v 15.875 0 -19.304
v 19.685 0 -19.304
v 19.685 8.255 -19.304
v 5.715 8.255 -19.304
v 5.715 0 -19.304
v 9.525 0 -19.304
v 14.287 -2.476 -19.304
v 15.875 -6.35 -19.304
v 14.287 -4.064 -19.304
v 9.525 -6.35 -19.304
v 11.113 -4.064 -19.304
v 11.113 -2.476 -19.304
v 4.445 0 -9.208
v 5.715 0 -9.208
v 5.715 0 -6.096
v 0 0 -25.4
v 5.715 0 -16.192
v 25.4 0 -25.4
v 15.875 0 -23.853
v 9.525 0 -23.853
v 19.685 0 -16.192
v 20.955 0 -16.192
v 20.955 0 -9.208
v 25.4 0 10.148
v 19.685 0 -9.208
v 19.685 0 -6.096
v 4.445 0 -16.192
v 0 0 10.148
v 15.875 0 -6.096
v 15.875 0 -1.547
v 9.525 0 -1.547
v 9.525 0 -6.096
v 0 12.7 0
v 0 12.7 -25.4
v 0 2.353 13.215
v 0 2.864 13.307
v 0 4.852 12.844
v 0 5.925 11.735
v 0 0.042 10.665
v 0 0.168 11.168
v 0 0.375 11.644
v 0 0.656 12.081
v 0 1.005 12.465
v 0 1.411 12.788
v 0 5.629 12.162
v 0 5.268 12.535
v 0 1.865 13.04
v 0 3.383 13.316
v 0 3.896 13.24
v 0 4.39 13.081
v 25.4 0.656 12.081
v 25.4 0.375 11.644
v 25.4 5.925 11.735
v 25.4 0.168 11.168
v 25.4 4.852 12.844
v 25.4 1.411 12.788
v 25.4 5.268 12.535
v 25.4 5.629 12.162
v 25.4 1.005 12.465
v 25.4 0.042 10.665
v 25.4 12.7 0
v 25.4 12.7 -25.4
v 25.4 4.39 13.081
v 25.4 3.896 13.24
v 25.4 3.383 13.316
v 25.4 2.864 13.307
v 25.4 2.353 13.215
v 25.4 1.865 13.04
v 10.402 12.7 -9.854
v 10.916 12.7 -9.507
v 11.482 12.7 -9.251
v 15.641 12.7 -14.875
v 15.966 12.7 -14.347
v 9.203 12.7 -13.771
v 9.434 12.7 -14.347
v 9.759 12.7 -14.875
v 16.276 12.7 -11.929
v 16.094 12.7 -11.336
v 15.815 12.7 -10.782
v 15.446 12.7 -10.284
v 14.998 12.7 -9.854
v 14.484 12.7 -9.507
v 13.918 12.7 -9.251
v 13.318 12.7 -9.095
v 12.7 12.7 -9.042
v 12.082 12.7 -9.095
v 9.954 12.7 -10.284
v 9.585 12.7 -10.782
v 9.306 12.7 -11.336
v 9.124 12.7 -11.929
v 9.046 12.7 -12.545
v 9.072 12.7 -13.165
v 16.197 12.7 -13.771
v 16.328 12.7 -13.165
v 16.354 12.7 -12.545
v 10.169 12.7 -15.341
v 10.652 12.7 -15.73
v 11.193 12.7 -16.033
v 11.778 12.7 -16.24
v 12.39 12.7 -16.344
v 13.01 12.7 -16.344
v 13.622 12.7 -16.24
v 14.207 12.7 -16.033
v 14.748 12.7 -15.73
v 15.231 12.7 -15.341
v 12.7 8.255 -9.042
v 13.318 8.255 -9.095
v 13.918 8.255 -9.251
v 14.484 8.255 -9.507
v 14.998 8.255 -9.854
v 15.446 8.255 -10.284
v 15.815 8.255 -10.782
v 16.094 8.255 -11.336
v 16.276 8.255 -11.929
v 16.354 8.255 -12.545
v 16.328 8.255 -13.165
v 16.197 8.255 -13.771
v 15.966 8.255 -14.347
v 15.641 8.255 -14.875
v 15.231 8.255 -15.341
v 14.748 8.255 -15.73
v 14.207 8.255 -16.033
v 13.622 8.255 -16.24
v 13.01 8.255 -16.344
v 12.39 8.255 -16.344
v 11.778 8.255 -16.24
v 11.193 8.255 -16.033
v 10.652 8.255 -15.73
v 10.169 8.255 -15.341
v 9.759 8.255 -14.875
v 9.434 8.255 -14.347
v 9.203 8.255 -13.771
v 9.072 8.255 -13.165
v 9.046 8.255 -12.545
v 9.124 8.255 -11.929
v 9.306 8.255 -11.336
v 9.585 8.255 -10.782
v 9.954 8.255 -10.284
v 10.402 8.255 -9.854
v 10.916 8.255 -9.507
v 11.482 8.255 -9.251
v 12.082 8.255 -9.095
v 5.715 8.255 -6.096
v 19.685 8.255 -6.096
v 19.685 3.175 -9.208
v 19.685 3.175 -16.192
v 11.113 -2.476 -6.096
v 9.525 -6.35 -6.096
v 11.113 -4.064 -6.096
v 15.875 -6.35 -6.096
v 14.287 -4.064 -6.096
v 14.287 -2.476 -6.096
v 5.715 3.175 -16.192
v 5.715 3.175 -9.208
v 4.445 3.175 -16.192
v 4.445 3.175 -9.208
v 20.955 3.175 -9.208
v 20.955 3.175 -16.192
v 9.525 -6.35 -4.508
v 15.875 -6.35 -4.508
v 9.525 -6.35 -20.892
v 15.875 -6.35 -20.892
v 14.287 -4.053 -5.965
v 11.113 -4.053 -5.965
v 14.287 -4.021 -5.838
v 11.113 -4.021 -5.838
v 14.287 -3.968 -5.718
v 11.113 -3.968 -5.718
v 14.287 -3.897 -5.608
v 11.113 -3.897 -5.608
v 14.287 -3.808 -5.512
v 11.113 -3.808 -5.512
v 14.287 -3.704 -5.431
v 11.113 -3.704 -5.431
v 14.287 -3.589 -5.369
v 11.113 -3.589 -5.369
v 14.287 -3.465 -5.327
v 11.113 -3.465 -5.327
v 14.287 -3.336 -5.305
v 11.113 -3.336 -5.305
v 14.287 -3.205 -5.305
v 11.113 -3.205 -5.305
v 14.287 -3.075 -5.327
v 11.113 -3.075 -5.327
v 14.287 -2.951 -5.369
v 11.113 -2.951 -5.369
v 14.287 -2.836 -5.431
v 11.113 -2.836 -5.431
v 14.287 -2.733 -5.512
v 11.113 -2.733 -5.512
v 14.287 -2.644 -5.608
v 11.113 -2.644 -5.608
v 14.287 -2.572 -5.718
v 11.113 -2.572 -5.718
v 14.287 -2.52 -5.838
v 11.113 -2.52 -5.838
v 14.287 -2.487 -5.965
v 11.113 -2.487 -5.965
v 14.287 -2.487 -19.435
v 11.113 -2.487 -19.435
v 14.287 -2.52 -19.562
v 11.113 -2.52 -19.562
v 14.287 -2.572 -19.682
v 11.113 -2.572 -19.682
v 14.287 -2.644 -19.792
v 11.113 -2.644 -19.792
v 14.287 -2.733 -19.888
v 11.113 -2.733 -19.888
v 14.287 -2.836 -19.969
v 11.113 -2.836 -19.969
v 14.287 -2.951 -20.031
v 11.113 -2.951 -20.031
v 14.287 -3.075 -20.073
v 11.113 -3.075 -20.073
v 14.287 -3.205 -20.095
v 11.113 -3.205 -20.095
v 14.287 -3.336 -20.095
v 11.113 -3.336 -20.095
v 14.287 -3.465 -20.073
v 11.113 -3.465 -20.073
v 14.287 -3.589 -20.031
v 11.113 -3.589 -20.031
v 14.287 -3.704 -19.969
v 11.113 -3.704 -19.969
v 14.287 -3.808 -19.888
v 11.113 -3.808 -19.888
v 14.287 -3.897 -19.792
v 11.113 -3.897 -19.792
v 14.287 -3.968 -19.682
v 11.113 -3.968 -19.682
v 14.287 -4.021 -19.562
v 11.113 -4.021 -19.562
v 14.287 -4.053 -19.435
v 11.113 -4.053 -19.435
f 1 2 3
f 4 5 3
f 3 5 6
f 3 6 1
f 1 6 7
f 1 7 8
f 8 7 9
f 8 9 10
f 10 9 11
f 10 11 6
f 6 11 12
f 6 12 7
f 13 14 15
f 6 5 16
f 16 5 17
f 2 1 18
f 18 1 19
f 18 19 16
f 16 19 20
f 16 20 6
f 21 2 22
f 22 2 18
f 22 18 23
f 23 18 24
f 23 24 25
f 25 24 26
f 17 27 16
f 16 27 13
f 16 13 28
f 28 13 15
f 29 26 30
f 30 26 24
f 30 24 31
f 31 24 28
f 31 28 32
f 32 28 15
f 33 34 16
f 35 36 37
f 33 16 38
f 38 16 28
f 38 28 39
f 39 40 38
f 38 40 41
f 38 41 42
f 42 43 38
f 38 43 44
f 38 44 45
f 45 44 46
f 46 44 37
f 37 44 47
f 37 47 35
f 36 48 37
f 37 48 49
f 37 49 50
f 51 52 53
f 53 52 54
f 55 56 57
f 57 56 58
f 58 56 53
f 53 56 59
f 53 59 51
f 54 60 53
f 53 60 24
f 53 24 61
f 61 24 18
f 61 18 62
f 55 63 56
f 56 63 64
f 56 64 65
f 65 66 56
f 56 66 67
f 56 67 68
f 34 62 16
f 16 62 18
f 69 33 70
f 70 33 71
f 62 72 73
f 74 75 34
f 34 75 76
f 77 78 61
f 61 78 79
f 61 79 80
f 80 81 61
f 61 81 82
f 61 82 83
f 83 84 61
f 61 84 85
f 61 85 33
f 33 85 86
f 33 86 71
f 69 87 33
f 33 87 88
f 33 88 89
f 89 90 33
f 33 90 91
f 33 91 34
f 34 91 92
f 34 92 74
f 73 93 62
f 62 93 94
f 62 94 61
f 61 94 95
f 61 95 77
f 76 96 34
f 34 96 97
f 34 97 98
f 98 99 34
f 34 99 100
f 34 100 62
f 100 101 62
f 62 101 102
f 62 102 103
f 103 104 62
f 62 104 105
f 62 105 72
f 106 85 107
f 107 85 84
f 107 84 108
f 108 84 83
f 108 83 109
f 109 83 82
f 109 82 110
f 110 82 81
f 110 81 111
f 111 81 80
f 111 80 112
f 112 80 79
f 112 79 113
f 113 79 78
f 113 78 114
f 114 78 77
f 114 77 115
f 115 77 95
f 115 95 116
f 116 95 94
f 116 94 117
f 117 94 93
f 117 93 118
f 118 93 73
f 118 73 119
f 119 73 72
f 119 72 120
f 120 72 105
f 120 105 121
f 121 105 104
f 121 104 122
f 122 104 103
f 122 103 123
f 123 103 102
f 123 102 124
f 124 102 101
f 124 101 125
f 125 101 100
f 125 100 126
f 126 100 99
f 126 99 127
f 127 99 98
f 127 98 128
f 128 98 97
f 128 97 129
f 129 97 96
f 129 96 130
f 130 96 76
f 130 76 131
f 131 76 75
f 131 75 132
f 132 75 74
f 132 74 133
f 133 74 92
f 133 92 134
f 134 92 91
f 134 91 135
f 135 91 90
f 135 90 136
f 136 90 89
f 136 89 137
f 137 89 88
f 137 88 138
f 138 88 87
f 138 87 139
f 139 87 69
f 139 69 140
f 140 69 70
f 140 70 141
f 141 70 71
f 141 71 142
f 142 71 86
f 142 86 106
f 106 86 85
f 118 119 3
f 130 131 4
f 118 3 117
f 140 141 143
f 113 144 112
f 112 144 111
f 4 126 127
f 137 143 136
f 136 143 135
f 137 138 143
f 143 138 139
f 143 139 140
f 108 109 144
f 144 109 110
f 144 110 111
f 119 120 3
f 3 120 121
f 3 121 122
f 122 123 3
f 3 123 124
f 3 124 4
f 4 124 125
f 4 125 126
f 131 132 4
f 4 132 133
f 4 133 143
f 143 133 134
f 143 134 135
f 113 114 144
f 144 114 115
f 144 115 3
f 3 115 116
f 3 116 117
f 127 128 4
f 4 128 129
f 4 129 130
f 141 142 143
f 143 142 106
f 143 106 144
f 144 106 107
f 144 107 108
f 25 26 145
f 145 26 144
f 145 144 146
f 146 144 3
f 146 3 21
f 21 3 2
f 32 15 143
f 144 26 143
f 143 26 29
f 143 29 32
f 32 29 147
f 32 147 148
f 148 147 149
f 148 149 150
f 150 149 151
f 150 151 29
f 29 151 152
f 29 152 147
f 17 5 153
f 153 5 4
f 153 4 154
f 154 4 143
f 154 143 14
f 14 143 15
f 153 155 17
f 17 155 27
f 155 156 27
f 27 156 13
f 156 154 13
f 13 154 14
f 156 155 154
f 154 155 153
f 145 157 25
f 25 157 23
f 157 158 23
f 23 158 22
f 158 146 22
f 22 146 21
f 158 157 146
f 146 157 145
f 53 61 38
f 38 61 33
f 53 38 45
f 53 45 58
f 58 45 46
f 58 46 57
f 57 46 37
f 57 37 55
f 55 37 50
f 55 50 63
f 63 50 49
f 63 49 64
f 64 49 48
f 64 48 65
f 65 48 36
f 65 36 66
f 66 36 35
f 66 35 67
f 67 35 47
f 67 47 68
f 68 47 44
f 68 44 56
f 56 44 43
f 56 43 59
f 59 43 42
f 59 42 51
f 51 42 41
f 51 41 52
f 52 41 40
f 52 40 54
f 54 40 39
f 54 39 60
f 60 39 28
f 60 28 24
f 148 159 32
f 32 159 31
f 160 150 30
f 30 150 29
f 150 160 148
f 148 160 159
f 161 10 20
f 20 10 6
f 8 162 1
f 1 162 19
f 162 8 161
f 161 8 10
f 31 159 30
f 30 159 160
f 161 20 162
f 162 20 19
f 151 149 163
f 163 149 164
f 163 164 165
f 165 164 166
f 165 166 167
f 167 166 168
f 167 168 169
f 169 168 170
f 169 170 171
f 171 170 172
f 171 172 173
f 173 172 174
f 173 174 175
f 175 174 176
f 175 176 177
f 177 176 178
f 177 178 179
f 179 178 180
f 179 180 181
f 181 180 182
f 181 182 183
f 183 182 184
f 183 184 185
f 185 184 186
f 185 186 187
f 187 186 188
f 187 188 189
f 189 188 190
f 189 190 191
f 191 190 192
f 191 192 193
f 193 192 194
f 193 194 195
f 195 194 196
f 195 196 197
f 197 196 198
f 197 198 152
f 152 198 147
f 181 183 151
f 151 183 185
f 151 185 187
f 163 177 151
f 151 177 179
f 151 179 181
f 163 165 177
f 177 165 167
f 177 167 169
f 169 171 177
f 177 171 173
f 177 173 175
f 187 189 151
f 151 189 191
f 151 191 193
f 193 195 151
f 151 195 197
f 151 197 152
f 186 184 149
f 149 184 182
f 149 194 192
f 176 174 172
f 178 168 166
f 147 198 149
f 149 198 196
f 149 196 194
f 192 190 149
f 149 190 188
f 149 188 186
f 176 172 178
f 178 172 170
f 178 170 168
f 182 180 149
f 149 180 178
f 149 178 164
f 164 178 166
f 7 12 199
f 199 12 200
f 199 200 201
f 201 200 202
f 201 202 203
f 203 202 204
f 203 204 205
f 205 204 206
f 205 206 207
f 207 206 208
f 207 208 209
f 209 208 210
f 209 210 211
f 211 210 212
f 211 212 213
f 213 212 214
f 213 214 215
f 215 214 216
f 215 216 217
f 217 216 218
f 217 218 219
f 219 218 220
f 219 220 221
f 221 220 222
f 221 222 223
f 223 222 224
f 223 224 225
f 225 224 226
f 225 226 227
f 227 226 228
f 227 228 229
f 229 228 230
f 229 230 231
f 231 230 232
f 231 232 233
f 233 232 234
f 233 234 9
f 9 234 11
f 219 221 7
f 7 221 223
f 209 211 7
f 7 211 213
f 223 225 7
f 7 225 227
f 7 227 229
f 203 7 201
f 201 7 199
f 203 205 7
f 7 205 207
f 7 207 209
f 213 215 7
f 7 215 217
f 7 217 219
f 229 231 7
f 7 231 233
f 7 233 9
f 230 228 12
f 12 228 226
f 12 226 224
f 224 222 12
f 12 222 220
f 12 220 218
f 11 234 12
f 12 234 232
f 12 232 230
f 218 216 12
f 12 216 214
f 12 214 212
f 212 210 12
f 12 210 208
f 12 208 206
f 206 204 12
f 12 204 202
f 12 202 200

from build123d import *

# Parameters (mm, degrees)
SKETCH1_W           = 25.4
SKETCH1_H           = 25.4
BOSS_EXTRUDE1_DEPTH = 12.7
SKETCH3_R           = 3.6576
CUT_EXTRUDE1_DEPTH  = 4.445
SKETCH2_W           = 13.97
SKETCH2_H           = 13.208
CUT_EXTRUDE2_DEPTH  = 8.255
SKETCH4_W           = 1.27
SKETCH4_H           = 6.985
CUT_EXTRUDE3_DEPTH  = 3.175
BOSS_EXTRUDE2_DEPTH = 25.4
FILLET1_R           = 3.175
SKETCH6_W           = 6.35
SKETCH6_H           = 1.5875
BOSS_EXTRUDE3_DEPTH = 6.35
BOSS_EXTRUDE4_DEPTH = 6.35
SKETCH8_R           = 0.79375
CUT_EXTRUDE4_DEPTH  = 1.5875


with BuildPart() as part:
    # Sketch1 → Boss-Extrude1 (new body)
    with BuildSketch(Plane(origin=(0, 0, 0), x_dir=(1, 0, 0), z_dir=(0, 1, 0))):
        with Locations((12.7, 12.7)):
            Rectangle(SKETCH1_W, SKETCH1_H)
    extrude(amount=BOSS_EXTRUDE1_DEPTH)

    # Sketch3 → Cut-Extrude1 (cut)
    with BuildSketch(Plane(origin=(0, 12.7, 0), x_dir=(1, 0, 0), z_dir=(0, 1, 0))):
        with Locations(Location((12.7, 12.7, 0), (0, 0, 270))):
            Circle(SKETCH3_R)
    extrude(amount=-CUT_EXTRUDE1_DEPTH, mode=Mode.SUBTRACT)

    # Sketch2 → Cut-Extrude2 (cut)
    with BuildSketch(Plane.XZ):
        with Locations((12.7, -12.7)):
            Rectangle(SKETCH2_W, SKETCH2_H)
    extrude(amount=-CUT_EXTRUDE2_DEPTH, mode=Mode.SUBTRACT)

    # Sketch4 → Cut-Extrude3 (cut)
    with BuildSketch(Plane.XZ):
        with Locations((5.08, -12.7)):
            Rectangle(SKETCH4_W, SKETCH4_H)
        with Locations((20.32, -12.7)):
            Rectangle(SKETCH4_W, SKETCH4_H)
    extrude(amount=-CUT_EXTRUDE3_DEPTH, mode=Mode.SUBTRACT)

    # Sketch5 → Boss-Extrude2 (add)
    with BuildSketch(Plane.ZY):
        Polygon((0, 0), (21.997045256, 0), (0, 12.7), align=None)
    extrude(amount=-BOSS_EXTRUDE2_DEPTH)

    # Fillet1
    fillet1_edges = [part.edges().sort_by_distance(p)[0] for p in [
        (12.7, 0, 21.997045256),
    ]]
    fillet(fillet1_edges, radius=FILLET1_R)

    # Sketch6 → Boss-Extrude3 (add)
    with BuildSketch(Plane.XZ):
        with Locations((12.7, -5.30225)):
            Rectangle(SKETCH6_W, SKETCH6_H)
        with Locations((12.7, -20.09775)):
            Rectangle(SKETCH6_W, SKETCH6_H)
    extrude(amount=BOSS_EXTRUDE3_DEPTH)

    # Sketch7 → Boss-Extrude4 (add)
    with BuildSketch(Plane.ZY.offset(-9.525)):
        Polygon((-4.5085, -6.35), (-1.547446371, 0), (-4.5085, 0), align=None)
        Polygon((-20.8915, -6.35), (-23.852553629, 0), (-20.8915, 0), align=None)
    extrude(amount=-BOSS_EXTRUDE4_DEPTH)

    # Sketch8 → Cut-Extrude4 (cut, symmetric)
    with BuildSketch(Plane.ZY.offset(-12.7)):
        with Locations((-19.304, -3.27025)):
            Circle(SKETCH8_R)
        with Locations((-6.096, -3.27025)):
            Circle(SKETCH8_R)
    extrude(amount=CUT_EXTRUDE4_DEPTH, both=True, mode=Mode.SUBTRACT)


solid = part.part
